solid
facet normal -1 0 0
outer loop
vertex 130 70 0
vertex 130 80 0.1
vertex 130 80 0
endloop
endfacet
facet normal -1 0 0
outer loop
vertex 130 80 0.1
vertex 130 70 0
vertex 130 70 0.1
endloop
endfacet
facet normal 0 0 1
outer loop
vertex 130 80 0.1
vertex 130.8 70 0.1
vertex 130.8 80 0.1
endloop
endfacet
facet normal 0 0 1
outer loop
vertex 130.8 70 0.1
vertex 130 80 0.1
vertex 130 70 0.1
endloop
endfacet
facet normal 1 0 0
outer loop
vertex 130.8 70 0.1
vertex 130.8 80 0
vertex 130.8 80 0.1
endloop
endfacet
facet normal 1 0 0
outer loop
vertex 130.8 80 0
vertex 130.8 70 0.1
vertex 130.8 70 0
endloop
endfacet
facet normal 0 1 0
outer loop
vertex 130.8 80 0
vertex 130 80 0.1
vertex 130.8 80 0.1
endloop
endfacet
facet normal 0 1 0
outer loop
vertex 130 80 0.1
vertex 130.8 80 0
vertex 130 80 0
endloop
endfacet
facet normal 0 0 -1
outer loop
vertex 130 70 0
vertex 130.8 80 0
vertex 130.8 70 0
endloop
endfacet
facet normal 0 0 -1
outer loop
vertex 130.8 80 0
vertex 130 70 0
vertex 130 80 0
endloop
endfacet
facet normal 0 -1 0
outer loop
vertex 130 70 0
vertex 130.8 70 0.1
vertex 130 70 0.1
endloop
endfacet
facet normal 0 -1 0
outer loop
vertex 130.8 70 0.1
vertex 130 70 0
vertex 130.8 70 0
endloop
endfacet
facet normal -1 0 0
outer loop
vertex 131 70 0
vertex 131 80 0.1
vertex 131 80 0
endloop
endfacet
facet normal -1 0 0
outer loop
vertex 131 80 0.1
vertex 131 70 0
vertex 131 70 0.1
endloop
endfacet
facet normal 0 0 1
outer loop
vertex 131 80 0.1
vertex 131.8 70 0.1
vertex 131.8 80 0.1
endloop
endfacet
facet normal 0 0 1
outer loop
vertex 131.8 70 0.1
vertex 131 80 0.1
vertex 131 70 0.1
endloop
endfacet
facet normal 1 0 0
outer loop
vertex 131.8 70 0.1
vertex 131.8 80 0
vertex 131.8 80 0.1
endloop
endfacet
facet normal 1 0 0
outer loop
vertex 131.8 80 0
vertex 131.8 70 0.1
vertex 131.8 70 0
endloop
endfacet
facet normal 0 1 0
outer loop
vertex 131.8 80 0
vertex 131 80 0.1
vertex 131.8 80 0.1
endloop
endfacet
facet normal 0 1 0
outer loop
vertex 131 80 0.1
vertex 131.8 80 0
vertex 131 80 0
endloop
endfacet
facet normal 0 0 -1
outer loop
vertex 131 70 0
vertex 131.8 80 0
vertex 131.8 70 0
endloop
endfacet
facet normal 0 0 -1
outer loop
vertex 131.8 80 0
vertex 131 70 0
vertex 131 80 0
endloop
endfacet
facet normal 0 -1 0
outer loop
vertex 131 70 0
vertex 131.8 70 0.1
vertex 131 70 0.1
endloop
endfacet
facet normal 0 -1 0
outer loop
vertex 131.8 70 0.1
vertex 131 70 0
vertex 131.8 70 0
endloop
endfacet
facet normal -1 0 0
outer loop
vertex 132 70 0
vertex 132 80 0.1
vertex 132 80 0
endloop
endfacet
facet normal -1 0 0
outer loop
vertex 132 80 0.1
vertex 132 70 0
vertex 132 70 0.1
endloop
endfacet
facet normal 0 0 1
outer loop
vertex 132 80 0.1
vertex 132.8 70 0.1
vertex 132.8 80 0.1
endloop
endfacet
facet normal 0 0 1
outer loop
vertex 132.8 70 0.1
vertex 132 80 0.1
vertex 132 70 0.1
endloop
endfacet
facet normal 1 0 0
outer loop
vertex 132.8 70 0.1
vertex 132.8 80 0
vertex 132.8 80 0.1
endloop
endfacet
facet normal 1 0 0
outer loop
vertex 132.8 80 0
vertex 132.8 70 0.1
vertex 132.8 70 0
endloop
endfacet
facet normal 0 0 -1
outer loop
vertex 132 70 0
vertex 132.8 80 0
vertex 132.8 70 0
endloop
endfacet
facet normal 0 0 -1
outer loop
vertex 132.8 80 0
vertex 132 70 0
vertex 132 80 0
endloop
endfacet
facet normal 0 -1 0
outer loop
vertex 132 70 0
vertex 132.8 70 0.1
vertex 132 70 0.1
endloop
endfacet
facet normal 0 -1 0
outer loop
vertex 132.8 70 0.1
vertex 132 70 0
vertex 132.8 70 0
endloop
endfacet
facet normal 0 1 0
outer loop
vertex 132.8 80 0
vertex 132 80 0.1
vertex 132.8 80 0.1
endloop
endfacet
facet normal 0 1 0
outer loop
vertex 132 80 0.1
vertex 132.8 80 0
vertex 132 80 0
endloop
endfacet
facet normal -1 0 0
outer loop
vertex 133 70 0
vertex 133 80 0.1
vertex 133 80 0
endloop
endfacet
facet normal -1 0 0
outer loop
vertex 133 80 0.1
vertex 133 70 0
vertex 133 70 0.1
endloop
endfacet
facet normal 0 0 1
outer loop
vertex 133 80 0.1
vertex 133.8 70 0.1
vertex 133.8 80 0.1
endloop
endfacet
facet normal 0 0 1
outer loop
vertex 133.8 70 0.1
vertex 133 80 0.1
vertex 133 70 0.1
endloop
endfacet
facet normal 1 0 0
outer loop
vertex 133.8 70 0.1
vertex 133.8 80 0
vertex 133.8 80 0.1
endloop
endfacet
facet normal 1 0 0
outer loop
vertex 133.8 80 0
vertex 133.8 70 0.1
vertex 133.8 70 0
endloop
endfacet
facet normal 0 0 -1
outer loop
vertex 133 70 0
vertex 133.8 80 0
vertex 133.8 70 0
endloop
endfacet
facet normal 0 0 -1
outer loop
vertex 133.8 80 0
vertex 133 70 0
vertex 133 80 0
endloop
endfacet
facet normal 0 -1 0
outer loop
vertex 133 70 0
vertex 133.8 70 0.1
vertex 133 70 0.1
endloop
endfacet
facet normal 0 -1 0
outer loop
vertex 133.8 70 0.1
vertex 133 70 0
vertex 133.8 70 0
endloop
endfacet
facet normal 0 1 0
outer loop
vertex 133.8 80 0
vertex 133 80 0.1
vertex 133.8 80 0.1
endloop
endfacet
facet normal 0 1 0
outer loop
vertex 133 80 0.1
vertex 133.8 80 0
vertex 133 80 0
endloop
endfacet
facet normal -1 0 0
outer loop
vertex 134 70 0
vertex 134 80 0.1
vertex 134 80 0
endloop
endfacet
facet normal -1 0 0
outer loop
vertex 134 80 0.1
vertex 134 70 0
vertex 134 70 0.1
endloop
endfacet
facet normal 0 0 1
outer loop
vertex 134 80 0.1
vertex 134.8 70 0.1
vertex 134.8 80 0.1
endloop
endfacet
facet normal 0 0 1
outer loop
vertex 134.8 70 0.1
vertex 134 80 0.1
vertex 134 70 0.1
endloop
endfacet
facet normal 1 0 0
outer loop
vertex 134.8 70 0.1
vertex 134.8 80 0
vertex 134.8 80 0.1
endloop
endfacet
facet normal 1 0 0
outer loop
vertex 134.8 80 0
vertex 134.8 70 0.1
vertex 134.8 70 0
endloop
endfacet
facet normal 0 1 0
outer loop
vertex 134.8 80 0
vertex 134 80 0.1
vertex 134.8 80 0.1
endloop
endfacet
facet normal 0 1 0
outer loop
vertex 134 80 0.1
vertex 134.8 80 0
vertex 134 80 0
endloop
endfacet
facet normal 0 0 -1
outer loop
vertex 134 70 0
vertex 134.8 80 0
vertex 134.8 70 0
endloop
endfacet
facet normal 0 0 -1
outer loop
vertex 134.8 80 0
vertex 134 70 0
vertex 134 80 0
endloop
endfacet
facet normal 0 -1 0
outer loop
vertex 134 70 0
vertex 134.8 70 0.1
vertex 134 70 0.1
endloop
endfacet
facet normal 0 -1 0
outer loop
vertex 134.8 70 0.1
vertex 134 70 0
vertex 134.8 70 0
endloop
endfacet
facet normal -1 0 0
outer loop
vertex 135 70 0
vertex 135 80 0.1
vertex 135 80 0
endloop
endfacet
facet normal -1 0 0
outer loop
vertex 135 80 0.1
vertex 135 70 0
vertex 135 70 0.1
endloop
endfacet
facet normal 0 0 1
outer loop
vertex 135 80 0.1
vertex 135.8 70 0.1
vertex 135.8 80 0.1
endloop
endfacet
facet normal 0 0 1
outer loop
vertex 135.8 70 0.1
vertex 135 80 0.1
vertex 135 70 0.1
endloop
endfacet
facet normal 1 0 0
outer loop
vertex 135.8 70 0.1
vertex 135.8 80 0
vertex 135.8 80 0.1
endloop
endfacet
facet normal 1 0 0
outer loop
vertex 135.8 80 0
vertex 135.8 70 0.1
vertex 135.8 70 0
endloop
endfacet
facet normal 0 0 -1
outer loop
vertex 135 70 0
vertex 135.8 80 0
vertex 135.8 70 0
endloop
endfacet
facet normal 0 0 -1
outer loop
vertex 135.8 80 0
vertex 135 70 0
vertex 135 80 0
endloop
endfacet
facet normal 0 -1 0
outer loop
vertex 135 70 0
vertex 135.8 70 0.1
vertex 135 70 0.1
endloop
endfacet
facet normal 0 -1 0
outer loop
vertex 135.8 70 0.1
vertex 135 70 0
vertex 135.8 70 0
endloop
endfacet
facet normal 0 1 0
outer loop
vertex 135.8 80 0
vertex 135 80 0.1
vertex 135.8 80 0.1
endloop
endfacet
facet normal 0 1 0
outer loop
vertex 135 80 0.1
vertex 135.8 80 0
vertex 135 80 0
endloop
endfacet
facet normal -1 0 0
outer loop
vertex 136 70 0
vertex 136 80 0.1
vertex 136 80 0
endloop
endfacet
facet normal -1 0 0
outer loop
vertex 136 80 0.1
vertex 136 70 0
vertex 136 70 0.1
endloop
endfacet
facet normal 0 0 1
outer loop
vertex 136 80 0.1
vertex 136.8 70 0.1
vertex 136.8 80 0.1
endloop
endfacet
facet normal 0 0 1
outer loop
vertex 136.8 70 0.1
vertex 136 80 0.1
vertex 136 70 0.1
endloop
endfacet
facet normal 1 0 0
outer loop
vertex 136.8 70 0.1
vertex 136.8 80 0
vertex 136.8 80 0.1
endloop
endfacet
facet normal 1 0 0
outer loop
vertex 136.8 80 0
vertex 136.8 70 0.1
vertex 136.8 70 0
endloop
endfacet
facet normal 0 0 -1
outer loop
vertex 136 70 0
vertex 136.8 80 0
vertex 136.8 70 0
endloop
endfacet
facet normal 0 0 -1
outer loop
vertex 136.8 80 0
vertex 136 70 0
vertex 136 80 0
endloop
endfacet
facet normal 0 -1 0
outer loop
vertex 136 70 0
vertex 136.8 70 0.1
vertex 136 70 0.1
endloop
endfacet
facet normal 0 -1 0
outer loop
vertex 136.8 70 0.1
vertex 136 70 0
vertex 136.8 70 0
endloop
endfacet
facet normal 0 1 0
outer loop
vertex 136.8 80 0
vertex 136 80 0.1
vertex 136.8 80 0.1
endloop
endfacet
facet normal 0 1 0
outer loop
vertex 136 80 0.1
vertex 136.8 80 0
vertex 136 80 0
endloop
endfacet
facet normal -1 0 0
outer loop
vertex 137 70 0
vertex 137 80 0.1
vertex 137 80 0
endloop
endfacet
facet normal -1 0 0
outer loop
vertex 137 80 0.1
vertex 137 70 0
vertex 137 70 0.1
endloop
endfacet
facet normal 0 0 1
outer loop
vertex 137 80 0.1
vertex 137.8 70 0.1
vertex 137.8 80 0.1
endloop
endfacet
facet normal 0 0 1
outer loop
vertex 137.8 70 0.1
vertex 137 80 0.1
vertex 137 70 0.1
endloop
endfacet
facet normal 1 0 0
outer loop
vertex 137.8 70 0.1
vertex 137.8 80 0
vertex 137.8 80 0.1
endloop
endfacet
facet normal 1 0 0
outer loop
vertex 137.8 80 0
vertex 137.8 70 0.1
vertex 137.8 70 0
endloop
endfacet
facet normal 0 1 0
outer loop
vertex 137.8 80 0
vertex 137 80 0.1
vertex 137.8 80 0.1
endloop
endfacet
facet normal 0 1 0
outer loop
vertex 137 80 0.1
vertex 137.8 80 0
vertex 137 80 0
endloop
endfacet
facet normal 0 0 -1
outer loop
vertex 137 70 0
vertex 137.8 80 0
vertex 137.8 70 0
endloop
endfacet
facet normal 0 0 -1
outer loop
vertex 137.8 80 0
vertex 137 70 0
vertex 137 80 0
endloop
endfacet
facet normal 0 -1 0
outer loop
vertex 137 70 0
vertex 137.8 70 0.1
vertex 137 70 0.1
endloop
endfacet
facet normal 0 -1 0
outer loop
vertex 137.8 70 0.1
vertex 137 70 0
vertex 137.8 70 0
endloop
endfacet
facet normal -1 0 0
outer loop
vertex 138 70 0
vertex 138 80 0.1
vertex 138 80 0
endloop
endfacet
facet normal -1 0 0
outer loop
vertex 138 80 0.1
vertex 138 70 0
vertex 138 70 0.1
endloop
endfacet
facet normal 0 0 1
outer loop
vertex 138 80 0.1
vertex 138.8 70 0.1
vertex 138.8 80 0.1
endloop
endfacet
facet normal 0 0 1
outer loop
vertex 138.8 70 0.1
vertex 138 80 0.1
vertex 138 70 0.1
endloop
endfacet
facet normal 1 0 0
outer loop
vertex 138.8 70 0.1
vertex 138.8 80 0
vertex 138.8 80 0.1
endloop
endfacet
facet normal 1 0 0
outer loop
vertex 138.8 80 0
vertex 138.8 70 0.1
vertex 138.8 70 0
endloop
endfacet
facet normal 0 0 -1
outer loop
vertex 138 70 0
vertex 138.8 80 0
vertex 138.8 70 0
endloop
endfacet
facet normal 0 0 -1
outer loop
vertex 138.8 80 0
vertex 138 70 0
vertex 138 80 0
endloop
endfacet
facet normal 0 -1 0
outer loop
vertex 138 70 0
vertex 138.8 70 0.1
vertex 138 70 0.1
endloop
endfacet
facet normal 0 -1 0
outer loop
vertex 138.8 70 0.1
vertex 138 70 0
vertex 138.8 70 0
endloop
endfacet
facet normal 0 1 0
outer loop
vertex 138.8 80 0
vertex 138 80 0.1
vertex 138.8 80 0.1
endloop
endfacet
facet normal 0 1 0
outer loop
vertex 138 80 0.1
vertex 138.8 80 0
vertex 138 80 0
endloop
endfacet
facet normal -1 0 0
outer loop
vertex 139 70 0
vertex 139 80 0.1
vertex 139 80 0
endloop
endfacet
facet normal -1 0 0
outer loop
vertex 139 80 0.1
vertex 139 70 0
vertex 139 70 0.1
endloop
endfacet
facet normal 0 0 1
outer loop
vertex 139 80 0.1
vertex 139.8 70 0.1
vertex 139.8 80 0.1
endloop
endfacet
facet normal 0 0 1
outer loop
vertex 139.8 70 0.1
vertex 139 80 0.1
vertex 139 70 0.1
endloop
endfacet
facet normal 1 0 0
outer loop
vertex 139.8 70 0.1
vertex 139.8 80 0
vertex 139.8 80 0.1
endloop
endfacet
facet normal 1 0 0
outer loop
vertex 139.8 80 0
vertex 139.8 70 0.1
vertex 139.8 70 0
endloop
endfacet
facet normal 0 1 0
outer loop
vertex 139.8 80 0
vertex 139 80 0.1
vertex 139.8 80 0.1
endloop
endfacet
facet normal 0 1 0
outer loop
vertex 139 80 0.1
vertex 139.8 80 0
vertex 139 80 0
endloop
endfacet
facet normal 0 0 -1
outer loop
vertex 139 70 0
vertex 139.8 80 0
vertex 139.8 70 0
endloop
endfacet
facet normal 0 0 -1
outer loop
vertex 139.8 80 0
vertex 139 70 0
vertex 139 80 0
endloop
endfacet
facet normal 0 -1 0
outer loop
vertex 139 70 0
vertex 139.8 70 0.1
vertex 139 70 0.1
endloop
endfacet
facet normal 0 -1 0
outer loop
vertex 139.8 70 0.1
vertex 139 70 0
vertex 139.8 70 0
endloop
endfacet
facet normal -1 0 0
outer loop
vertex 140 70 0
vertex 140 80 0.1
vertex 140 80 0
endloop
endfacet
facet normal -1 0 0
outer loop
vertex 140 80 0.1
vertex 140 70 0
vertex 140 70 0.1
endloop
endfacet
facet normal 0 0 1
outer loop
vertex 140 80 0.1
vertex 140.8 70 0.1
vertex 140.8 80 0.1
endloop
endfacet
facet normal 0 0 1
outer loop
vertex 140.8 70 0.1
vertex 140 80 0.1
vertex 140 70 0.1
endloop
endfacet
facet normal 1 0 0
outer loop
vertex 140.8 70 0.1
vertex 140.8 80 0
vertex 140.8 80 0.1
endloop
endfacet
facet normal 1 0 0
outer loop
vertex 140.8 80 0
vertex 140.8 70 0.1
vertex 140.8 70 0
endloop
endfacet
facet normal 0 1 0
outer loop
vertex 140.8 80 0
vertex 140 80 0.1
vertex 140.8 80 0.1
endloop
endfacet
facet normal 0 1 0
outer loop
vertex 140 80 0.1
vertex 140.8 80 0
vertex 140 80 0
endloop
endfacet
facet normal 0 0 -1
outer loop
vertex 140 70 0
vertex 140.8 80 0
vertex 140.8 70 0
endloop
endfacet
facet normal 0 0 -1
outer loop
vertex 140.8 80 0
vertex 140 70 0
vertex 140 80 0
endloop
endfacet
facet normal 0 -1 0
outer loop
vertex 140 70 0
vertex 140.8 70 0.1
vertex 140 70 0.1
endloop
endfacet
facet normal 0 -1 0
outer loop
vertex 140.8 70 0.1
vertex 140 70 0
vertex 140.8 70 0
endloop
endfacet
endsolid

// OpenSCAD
translate([10+120,10+60,0])
        for (i = [0 : 10]){
            translate([i,0,0])
                cube(size = [0.8,10,0.1]);
    }
